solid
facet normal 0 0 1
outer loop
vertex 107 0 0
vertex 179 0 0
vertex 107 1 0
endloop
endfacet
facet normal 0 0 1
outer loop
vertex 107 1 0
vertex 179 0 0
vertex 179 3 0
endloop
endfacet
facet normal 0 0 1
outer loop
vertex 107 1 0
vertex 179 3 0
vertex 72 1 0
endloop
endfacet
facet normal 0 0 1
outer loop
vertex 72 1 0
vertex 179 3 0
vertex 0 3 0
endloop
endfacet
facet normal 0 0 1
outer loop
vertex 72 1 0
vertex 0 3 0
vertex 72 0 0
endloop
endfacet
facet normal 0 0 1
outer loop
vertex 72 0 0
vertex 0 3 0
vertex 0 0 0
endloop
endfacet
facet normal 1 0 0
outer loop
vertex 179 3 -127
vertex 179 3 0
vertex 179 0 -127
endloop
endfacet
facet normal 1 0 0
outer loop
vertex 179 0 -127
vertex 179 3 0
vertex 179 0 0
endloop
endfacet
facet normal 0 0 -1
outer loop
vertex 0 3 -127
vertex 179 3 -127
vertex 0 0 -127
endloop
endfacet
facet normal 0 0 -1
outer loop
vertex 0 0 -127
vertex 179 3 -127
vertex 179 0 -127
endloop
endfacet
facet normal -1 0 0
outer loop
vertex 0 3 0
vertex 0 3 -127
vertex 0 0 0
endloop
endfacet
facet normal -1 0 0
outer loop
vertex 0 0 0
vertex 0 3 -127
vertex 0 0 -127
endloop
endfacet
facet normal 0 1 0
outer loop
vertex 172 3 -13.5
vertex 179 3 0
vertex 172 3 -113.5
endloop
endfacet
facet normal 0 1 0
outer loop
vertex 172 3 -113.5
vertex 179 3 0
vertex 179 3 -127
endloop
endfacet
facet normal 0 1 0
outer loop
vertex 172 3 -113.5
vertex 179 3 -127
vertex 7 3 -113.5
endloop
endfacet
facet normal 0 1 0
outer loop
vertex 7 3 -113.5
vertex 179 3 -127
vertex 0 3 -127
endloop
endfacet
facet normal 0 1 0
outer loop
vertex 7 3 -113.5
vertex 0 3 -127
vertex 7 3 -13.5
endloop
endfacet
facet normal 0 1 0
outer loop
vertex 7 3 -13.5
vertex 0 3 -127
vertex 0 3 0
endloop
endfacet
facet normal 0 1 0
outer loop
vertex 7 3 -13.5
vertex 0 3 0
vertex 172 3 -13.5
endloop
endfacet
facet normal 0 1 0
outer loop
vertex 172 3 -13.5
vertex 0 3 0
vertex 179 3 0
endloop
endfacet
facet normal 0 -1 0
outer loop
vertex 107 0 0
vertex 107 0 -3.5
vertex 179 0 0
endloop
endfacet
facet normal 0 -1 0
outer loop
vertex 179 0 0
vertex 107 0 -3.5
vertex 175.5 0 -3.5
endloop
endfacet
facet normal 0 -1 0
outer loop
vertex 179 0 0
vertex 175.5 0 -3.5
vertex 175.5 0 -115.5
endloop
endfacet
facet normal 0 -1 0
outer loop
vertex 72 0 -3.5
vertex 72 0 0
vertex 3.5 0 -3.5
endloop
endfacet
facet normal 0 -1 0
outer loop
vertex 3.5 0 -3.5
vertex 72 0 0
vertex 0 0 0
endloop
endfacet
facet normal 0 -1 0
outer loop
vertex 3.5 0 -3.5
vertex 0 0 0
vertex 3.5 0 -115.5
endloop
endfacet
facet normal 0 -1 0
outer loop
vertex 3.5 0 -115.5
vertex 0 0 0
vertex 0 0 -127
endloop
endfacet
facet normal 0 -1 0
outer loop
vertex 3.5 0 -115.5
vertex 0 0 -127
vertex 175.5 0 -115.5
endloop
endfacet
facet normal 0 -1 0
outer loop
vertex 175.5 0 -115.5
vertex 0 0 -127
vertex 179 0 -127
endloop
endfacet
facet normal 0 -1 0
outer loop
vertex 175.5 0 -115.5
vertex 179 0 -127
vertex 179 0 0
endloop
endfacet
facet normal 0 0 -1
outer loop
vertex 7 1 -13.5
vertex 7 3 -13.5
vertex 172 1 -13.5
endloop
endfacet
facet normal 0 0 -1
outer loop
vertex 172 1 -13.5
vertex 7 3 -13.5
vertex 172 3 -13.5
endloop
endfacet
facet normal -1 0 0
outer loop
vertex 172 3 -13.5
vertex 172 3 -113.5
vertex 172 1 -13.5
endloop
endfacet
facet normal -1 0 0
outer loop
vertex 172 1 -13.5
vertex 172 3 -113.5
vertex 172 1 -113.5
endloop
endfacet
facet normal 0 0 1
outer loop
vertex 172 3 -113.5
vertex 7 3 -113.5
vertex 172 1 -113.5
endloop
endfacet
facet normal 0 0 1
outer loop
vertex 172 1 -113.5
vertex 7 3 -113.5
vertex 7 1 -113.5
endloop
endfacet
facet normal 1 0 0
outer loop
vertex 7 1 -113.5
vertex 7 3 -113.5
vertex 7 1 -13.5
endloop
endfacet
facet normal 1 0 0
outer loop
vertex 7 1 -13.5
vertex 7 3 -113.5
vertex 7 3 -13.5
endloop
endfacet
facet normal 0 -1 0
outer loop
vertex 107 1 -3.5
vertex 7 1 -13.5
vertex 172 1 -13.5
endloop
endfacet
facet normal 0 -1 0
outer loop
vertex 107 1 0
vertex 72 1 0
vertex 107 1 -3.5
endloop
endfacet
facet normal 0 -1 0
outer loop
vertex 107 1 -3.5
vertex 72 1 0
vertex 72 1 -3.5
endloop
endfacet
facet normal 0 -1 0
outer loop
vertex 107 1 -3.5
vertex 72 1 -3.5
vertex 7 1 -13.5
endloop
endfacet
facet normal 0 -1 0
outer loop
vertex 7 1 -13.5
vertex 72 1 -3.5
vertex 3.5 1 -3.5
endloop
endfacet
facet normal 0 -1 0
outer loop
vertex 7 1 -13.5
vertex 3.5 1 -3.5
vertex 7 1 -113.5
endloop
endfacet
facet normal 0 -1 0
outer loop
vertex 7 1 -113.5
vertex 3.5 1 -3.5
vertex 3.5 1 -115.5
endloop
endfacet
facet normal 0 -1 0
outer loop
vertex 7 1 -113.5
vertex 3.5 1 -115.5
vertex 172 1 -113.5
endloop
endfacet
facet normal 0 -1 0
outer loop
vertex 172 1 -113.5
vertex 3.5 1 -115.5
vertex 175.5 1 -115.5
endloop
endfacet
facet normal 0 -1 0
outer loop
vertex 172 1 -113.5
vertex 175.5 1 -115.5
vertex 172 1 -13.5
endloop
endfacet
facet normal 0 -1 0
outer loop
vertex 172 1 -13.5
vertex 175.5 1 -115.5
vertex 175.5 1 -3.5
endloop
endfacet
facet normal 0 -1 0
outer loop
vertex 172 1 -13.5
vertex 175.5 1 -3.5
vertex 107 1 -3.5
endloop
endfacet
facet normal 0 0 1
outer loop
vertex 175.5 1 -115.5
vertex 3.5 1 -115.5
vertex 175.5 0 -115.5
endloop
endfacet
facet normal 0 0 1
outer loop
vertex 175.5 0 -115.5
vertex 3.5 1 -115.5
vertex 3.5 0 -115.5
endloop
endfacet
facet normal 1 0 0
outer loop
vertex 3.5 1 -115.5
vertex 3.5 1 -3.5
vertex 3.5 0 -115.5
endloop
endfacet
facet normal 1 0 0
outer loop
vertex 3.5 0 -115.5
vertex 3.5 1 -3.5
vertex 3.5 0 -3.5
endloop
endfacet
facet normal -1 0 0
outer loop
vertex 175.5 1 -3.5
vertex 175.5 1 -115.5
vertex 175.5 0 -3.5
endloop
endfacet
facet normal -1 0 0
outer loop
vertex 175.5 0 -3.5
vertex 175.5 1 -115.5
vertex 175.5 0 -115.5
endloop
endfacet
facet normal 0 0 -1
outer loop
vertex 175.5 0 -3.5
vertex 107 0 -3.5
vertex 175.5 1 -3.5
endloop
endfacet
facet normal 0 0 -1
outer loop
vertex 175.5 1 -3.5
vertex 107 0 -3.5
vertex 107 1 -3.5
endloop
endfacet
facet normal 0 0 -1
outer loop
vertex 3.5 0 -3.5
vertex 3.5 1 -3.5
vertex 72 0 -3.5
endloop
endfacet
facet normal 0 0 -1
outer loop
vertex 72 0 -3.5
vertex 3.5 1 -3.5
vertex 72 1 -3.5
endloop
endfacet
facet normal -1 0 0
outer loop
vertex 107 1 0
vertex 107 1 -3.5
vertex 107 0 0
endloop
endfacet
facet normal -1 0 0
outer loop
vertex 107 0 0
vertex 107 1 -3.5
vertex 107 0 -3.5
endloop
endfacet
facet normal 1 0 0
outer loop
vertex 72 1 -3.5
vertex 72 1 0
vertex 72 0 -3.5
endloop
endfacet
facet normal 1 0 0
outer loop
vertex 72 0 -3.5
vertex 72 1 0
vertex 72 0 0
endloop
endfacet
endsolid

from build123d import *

# Parameters (mm, degrees)
SKETCH1_W           = 179
SKETCH1_H           = 127
SKETCH1_W_2         = 165
SKETCH1_H_2         = 100
BOSS_EXTRUDE1_DEPTH = 3
SKETCH1_3_W         = 172
SKETCH1_3_H         = 112
SKETCH1_3_W_2       = 35
SKETCH1_3_H_2       = 3.5
CUT_EXTRUDE1_DEPTH  = 1


with BuildPart() as part:
    # Sketch1 → Boss-Extrude1 (new body)
    with BuildSketch(Plane(origin=(0, 0, 0), x_dir=(1, 0, 0), z_dir=(0, 1, 0))):
        with Locations((89.5, 63.5)):
            Rectangle(SKETCH1_W, SKETCH1_H)
        with Locations((89.5, 63.5)):
            Rectangle(SKETCH1_W_2, SKETCH1_H_2, mode=Mode.SUBTRACT)
    extrude(amount=BOSS_EXTRUDE1_DEPTH)

    # Sketch1<3> → Cut-Extrude1 (cut)
    with BuildSketch(Plane(origin=(0, 0, 0), x_dir=(1, 0, 0), z_dir=(0, 1, 0))):
        with Locations((89.5, 59.5)):
            Rectangle(SKETCH1_3_W, SKETCH1_3_H)
        with Locations((89.5, 1.75)):
            Rectangle(SKETCH1_3_W_2, SKETCH1_3_H_2)
    extrude(amount=CUT_EXTRUDE1_DEPTH, mode=Mode.SUBTRACT)


solid = part.part
